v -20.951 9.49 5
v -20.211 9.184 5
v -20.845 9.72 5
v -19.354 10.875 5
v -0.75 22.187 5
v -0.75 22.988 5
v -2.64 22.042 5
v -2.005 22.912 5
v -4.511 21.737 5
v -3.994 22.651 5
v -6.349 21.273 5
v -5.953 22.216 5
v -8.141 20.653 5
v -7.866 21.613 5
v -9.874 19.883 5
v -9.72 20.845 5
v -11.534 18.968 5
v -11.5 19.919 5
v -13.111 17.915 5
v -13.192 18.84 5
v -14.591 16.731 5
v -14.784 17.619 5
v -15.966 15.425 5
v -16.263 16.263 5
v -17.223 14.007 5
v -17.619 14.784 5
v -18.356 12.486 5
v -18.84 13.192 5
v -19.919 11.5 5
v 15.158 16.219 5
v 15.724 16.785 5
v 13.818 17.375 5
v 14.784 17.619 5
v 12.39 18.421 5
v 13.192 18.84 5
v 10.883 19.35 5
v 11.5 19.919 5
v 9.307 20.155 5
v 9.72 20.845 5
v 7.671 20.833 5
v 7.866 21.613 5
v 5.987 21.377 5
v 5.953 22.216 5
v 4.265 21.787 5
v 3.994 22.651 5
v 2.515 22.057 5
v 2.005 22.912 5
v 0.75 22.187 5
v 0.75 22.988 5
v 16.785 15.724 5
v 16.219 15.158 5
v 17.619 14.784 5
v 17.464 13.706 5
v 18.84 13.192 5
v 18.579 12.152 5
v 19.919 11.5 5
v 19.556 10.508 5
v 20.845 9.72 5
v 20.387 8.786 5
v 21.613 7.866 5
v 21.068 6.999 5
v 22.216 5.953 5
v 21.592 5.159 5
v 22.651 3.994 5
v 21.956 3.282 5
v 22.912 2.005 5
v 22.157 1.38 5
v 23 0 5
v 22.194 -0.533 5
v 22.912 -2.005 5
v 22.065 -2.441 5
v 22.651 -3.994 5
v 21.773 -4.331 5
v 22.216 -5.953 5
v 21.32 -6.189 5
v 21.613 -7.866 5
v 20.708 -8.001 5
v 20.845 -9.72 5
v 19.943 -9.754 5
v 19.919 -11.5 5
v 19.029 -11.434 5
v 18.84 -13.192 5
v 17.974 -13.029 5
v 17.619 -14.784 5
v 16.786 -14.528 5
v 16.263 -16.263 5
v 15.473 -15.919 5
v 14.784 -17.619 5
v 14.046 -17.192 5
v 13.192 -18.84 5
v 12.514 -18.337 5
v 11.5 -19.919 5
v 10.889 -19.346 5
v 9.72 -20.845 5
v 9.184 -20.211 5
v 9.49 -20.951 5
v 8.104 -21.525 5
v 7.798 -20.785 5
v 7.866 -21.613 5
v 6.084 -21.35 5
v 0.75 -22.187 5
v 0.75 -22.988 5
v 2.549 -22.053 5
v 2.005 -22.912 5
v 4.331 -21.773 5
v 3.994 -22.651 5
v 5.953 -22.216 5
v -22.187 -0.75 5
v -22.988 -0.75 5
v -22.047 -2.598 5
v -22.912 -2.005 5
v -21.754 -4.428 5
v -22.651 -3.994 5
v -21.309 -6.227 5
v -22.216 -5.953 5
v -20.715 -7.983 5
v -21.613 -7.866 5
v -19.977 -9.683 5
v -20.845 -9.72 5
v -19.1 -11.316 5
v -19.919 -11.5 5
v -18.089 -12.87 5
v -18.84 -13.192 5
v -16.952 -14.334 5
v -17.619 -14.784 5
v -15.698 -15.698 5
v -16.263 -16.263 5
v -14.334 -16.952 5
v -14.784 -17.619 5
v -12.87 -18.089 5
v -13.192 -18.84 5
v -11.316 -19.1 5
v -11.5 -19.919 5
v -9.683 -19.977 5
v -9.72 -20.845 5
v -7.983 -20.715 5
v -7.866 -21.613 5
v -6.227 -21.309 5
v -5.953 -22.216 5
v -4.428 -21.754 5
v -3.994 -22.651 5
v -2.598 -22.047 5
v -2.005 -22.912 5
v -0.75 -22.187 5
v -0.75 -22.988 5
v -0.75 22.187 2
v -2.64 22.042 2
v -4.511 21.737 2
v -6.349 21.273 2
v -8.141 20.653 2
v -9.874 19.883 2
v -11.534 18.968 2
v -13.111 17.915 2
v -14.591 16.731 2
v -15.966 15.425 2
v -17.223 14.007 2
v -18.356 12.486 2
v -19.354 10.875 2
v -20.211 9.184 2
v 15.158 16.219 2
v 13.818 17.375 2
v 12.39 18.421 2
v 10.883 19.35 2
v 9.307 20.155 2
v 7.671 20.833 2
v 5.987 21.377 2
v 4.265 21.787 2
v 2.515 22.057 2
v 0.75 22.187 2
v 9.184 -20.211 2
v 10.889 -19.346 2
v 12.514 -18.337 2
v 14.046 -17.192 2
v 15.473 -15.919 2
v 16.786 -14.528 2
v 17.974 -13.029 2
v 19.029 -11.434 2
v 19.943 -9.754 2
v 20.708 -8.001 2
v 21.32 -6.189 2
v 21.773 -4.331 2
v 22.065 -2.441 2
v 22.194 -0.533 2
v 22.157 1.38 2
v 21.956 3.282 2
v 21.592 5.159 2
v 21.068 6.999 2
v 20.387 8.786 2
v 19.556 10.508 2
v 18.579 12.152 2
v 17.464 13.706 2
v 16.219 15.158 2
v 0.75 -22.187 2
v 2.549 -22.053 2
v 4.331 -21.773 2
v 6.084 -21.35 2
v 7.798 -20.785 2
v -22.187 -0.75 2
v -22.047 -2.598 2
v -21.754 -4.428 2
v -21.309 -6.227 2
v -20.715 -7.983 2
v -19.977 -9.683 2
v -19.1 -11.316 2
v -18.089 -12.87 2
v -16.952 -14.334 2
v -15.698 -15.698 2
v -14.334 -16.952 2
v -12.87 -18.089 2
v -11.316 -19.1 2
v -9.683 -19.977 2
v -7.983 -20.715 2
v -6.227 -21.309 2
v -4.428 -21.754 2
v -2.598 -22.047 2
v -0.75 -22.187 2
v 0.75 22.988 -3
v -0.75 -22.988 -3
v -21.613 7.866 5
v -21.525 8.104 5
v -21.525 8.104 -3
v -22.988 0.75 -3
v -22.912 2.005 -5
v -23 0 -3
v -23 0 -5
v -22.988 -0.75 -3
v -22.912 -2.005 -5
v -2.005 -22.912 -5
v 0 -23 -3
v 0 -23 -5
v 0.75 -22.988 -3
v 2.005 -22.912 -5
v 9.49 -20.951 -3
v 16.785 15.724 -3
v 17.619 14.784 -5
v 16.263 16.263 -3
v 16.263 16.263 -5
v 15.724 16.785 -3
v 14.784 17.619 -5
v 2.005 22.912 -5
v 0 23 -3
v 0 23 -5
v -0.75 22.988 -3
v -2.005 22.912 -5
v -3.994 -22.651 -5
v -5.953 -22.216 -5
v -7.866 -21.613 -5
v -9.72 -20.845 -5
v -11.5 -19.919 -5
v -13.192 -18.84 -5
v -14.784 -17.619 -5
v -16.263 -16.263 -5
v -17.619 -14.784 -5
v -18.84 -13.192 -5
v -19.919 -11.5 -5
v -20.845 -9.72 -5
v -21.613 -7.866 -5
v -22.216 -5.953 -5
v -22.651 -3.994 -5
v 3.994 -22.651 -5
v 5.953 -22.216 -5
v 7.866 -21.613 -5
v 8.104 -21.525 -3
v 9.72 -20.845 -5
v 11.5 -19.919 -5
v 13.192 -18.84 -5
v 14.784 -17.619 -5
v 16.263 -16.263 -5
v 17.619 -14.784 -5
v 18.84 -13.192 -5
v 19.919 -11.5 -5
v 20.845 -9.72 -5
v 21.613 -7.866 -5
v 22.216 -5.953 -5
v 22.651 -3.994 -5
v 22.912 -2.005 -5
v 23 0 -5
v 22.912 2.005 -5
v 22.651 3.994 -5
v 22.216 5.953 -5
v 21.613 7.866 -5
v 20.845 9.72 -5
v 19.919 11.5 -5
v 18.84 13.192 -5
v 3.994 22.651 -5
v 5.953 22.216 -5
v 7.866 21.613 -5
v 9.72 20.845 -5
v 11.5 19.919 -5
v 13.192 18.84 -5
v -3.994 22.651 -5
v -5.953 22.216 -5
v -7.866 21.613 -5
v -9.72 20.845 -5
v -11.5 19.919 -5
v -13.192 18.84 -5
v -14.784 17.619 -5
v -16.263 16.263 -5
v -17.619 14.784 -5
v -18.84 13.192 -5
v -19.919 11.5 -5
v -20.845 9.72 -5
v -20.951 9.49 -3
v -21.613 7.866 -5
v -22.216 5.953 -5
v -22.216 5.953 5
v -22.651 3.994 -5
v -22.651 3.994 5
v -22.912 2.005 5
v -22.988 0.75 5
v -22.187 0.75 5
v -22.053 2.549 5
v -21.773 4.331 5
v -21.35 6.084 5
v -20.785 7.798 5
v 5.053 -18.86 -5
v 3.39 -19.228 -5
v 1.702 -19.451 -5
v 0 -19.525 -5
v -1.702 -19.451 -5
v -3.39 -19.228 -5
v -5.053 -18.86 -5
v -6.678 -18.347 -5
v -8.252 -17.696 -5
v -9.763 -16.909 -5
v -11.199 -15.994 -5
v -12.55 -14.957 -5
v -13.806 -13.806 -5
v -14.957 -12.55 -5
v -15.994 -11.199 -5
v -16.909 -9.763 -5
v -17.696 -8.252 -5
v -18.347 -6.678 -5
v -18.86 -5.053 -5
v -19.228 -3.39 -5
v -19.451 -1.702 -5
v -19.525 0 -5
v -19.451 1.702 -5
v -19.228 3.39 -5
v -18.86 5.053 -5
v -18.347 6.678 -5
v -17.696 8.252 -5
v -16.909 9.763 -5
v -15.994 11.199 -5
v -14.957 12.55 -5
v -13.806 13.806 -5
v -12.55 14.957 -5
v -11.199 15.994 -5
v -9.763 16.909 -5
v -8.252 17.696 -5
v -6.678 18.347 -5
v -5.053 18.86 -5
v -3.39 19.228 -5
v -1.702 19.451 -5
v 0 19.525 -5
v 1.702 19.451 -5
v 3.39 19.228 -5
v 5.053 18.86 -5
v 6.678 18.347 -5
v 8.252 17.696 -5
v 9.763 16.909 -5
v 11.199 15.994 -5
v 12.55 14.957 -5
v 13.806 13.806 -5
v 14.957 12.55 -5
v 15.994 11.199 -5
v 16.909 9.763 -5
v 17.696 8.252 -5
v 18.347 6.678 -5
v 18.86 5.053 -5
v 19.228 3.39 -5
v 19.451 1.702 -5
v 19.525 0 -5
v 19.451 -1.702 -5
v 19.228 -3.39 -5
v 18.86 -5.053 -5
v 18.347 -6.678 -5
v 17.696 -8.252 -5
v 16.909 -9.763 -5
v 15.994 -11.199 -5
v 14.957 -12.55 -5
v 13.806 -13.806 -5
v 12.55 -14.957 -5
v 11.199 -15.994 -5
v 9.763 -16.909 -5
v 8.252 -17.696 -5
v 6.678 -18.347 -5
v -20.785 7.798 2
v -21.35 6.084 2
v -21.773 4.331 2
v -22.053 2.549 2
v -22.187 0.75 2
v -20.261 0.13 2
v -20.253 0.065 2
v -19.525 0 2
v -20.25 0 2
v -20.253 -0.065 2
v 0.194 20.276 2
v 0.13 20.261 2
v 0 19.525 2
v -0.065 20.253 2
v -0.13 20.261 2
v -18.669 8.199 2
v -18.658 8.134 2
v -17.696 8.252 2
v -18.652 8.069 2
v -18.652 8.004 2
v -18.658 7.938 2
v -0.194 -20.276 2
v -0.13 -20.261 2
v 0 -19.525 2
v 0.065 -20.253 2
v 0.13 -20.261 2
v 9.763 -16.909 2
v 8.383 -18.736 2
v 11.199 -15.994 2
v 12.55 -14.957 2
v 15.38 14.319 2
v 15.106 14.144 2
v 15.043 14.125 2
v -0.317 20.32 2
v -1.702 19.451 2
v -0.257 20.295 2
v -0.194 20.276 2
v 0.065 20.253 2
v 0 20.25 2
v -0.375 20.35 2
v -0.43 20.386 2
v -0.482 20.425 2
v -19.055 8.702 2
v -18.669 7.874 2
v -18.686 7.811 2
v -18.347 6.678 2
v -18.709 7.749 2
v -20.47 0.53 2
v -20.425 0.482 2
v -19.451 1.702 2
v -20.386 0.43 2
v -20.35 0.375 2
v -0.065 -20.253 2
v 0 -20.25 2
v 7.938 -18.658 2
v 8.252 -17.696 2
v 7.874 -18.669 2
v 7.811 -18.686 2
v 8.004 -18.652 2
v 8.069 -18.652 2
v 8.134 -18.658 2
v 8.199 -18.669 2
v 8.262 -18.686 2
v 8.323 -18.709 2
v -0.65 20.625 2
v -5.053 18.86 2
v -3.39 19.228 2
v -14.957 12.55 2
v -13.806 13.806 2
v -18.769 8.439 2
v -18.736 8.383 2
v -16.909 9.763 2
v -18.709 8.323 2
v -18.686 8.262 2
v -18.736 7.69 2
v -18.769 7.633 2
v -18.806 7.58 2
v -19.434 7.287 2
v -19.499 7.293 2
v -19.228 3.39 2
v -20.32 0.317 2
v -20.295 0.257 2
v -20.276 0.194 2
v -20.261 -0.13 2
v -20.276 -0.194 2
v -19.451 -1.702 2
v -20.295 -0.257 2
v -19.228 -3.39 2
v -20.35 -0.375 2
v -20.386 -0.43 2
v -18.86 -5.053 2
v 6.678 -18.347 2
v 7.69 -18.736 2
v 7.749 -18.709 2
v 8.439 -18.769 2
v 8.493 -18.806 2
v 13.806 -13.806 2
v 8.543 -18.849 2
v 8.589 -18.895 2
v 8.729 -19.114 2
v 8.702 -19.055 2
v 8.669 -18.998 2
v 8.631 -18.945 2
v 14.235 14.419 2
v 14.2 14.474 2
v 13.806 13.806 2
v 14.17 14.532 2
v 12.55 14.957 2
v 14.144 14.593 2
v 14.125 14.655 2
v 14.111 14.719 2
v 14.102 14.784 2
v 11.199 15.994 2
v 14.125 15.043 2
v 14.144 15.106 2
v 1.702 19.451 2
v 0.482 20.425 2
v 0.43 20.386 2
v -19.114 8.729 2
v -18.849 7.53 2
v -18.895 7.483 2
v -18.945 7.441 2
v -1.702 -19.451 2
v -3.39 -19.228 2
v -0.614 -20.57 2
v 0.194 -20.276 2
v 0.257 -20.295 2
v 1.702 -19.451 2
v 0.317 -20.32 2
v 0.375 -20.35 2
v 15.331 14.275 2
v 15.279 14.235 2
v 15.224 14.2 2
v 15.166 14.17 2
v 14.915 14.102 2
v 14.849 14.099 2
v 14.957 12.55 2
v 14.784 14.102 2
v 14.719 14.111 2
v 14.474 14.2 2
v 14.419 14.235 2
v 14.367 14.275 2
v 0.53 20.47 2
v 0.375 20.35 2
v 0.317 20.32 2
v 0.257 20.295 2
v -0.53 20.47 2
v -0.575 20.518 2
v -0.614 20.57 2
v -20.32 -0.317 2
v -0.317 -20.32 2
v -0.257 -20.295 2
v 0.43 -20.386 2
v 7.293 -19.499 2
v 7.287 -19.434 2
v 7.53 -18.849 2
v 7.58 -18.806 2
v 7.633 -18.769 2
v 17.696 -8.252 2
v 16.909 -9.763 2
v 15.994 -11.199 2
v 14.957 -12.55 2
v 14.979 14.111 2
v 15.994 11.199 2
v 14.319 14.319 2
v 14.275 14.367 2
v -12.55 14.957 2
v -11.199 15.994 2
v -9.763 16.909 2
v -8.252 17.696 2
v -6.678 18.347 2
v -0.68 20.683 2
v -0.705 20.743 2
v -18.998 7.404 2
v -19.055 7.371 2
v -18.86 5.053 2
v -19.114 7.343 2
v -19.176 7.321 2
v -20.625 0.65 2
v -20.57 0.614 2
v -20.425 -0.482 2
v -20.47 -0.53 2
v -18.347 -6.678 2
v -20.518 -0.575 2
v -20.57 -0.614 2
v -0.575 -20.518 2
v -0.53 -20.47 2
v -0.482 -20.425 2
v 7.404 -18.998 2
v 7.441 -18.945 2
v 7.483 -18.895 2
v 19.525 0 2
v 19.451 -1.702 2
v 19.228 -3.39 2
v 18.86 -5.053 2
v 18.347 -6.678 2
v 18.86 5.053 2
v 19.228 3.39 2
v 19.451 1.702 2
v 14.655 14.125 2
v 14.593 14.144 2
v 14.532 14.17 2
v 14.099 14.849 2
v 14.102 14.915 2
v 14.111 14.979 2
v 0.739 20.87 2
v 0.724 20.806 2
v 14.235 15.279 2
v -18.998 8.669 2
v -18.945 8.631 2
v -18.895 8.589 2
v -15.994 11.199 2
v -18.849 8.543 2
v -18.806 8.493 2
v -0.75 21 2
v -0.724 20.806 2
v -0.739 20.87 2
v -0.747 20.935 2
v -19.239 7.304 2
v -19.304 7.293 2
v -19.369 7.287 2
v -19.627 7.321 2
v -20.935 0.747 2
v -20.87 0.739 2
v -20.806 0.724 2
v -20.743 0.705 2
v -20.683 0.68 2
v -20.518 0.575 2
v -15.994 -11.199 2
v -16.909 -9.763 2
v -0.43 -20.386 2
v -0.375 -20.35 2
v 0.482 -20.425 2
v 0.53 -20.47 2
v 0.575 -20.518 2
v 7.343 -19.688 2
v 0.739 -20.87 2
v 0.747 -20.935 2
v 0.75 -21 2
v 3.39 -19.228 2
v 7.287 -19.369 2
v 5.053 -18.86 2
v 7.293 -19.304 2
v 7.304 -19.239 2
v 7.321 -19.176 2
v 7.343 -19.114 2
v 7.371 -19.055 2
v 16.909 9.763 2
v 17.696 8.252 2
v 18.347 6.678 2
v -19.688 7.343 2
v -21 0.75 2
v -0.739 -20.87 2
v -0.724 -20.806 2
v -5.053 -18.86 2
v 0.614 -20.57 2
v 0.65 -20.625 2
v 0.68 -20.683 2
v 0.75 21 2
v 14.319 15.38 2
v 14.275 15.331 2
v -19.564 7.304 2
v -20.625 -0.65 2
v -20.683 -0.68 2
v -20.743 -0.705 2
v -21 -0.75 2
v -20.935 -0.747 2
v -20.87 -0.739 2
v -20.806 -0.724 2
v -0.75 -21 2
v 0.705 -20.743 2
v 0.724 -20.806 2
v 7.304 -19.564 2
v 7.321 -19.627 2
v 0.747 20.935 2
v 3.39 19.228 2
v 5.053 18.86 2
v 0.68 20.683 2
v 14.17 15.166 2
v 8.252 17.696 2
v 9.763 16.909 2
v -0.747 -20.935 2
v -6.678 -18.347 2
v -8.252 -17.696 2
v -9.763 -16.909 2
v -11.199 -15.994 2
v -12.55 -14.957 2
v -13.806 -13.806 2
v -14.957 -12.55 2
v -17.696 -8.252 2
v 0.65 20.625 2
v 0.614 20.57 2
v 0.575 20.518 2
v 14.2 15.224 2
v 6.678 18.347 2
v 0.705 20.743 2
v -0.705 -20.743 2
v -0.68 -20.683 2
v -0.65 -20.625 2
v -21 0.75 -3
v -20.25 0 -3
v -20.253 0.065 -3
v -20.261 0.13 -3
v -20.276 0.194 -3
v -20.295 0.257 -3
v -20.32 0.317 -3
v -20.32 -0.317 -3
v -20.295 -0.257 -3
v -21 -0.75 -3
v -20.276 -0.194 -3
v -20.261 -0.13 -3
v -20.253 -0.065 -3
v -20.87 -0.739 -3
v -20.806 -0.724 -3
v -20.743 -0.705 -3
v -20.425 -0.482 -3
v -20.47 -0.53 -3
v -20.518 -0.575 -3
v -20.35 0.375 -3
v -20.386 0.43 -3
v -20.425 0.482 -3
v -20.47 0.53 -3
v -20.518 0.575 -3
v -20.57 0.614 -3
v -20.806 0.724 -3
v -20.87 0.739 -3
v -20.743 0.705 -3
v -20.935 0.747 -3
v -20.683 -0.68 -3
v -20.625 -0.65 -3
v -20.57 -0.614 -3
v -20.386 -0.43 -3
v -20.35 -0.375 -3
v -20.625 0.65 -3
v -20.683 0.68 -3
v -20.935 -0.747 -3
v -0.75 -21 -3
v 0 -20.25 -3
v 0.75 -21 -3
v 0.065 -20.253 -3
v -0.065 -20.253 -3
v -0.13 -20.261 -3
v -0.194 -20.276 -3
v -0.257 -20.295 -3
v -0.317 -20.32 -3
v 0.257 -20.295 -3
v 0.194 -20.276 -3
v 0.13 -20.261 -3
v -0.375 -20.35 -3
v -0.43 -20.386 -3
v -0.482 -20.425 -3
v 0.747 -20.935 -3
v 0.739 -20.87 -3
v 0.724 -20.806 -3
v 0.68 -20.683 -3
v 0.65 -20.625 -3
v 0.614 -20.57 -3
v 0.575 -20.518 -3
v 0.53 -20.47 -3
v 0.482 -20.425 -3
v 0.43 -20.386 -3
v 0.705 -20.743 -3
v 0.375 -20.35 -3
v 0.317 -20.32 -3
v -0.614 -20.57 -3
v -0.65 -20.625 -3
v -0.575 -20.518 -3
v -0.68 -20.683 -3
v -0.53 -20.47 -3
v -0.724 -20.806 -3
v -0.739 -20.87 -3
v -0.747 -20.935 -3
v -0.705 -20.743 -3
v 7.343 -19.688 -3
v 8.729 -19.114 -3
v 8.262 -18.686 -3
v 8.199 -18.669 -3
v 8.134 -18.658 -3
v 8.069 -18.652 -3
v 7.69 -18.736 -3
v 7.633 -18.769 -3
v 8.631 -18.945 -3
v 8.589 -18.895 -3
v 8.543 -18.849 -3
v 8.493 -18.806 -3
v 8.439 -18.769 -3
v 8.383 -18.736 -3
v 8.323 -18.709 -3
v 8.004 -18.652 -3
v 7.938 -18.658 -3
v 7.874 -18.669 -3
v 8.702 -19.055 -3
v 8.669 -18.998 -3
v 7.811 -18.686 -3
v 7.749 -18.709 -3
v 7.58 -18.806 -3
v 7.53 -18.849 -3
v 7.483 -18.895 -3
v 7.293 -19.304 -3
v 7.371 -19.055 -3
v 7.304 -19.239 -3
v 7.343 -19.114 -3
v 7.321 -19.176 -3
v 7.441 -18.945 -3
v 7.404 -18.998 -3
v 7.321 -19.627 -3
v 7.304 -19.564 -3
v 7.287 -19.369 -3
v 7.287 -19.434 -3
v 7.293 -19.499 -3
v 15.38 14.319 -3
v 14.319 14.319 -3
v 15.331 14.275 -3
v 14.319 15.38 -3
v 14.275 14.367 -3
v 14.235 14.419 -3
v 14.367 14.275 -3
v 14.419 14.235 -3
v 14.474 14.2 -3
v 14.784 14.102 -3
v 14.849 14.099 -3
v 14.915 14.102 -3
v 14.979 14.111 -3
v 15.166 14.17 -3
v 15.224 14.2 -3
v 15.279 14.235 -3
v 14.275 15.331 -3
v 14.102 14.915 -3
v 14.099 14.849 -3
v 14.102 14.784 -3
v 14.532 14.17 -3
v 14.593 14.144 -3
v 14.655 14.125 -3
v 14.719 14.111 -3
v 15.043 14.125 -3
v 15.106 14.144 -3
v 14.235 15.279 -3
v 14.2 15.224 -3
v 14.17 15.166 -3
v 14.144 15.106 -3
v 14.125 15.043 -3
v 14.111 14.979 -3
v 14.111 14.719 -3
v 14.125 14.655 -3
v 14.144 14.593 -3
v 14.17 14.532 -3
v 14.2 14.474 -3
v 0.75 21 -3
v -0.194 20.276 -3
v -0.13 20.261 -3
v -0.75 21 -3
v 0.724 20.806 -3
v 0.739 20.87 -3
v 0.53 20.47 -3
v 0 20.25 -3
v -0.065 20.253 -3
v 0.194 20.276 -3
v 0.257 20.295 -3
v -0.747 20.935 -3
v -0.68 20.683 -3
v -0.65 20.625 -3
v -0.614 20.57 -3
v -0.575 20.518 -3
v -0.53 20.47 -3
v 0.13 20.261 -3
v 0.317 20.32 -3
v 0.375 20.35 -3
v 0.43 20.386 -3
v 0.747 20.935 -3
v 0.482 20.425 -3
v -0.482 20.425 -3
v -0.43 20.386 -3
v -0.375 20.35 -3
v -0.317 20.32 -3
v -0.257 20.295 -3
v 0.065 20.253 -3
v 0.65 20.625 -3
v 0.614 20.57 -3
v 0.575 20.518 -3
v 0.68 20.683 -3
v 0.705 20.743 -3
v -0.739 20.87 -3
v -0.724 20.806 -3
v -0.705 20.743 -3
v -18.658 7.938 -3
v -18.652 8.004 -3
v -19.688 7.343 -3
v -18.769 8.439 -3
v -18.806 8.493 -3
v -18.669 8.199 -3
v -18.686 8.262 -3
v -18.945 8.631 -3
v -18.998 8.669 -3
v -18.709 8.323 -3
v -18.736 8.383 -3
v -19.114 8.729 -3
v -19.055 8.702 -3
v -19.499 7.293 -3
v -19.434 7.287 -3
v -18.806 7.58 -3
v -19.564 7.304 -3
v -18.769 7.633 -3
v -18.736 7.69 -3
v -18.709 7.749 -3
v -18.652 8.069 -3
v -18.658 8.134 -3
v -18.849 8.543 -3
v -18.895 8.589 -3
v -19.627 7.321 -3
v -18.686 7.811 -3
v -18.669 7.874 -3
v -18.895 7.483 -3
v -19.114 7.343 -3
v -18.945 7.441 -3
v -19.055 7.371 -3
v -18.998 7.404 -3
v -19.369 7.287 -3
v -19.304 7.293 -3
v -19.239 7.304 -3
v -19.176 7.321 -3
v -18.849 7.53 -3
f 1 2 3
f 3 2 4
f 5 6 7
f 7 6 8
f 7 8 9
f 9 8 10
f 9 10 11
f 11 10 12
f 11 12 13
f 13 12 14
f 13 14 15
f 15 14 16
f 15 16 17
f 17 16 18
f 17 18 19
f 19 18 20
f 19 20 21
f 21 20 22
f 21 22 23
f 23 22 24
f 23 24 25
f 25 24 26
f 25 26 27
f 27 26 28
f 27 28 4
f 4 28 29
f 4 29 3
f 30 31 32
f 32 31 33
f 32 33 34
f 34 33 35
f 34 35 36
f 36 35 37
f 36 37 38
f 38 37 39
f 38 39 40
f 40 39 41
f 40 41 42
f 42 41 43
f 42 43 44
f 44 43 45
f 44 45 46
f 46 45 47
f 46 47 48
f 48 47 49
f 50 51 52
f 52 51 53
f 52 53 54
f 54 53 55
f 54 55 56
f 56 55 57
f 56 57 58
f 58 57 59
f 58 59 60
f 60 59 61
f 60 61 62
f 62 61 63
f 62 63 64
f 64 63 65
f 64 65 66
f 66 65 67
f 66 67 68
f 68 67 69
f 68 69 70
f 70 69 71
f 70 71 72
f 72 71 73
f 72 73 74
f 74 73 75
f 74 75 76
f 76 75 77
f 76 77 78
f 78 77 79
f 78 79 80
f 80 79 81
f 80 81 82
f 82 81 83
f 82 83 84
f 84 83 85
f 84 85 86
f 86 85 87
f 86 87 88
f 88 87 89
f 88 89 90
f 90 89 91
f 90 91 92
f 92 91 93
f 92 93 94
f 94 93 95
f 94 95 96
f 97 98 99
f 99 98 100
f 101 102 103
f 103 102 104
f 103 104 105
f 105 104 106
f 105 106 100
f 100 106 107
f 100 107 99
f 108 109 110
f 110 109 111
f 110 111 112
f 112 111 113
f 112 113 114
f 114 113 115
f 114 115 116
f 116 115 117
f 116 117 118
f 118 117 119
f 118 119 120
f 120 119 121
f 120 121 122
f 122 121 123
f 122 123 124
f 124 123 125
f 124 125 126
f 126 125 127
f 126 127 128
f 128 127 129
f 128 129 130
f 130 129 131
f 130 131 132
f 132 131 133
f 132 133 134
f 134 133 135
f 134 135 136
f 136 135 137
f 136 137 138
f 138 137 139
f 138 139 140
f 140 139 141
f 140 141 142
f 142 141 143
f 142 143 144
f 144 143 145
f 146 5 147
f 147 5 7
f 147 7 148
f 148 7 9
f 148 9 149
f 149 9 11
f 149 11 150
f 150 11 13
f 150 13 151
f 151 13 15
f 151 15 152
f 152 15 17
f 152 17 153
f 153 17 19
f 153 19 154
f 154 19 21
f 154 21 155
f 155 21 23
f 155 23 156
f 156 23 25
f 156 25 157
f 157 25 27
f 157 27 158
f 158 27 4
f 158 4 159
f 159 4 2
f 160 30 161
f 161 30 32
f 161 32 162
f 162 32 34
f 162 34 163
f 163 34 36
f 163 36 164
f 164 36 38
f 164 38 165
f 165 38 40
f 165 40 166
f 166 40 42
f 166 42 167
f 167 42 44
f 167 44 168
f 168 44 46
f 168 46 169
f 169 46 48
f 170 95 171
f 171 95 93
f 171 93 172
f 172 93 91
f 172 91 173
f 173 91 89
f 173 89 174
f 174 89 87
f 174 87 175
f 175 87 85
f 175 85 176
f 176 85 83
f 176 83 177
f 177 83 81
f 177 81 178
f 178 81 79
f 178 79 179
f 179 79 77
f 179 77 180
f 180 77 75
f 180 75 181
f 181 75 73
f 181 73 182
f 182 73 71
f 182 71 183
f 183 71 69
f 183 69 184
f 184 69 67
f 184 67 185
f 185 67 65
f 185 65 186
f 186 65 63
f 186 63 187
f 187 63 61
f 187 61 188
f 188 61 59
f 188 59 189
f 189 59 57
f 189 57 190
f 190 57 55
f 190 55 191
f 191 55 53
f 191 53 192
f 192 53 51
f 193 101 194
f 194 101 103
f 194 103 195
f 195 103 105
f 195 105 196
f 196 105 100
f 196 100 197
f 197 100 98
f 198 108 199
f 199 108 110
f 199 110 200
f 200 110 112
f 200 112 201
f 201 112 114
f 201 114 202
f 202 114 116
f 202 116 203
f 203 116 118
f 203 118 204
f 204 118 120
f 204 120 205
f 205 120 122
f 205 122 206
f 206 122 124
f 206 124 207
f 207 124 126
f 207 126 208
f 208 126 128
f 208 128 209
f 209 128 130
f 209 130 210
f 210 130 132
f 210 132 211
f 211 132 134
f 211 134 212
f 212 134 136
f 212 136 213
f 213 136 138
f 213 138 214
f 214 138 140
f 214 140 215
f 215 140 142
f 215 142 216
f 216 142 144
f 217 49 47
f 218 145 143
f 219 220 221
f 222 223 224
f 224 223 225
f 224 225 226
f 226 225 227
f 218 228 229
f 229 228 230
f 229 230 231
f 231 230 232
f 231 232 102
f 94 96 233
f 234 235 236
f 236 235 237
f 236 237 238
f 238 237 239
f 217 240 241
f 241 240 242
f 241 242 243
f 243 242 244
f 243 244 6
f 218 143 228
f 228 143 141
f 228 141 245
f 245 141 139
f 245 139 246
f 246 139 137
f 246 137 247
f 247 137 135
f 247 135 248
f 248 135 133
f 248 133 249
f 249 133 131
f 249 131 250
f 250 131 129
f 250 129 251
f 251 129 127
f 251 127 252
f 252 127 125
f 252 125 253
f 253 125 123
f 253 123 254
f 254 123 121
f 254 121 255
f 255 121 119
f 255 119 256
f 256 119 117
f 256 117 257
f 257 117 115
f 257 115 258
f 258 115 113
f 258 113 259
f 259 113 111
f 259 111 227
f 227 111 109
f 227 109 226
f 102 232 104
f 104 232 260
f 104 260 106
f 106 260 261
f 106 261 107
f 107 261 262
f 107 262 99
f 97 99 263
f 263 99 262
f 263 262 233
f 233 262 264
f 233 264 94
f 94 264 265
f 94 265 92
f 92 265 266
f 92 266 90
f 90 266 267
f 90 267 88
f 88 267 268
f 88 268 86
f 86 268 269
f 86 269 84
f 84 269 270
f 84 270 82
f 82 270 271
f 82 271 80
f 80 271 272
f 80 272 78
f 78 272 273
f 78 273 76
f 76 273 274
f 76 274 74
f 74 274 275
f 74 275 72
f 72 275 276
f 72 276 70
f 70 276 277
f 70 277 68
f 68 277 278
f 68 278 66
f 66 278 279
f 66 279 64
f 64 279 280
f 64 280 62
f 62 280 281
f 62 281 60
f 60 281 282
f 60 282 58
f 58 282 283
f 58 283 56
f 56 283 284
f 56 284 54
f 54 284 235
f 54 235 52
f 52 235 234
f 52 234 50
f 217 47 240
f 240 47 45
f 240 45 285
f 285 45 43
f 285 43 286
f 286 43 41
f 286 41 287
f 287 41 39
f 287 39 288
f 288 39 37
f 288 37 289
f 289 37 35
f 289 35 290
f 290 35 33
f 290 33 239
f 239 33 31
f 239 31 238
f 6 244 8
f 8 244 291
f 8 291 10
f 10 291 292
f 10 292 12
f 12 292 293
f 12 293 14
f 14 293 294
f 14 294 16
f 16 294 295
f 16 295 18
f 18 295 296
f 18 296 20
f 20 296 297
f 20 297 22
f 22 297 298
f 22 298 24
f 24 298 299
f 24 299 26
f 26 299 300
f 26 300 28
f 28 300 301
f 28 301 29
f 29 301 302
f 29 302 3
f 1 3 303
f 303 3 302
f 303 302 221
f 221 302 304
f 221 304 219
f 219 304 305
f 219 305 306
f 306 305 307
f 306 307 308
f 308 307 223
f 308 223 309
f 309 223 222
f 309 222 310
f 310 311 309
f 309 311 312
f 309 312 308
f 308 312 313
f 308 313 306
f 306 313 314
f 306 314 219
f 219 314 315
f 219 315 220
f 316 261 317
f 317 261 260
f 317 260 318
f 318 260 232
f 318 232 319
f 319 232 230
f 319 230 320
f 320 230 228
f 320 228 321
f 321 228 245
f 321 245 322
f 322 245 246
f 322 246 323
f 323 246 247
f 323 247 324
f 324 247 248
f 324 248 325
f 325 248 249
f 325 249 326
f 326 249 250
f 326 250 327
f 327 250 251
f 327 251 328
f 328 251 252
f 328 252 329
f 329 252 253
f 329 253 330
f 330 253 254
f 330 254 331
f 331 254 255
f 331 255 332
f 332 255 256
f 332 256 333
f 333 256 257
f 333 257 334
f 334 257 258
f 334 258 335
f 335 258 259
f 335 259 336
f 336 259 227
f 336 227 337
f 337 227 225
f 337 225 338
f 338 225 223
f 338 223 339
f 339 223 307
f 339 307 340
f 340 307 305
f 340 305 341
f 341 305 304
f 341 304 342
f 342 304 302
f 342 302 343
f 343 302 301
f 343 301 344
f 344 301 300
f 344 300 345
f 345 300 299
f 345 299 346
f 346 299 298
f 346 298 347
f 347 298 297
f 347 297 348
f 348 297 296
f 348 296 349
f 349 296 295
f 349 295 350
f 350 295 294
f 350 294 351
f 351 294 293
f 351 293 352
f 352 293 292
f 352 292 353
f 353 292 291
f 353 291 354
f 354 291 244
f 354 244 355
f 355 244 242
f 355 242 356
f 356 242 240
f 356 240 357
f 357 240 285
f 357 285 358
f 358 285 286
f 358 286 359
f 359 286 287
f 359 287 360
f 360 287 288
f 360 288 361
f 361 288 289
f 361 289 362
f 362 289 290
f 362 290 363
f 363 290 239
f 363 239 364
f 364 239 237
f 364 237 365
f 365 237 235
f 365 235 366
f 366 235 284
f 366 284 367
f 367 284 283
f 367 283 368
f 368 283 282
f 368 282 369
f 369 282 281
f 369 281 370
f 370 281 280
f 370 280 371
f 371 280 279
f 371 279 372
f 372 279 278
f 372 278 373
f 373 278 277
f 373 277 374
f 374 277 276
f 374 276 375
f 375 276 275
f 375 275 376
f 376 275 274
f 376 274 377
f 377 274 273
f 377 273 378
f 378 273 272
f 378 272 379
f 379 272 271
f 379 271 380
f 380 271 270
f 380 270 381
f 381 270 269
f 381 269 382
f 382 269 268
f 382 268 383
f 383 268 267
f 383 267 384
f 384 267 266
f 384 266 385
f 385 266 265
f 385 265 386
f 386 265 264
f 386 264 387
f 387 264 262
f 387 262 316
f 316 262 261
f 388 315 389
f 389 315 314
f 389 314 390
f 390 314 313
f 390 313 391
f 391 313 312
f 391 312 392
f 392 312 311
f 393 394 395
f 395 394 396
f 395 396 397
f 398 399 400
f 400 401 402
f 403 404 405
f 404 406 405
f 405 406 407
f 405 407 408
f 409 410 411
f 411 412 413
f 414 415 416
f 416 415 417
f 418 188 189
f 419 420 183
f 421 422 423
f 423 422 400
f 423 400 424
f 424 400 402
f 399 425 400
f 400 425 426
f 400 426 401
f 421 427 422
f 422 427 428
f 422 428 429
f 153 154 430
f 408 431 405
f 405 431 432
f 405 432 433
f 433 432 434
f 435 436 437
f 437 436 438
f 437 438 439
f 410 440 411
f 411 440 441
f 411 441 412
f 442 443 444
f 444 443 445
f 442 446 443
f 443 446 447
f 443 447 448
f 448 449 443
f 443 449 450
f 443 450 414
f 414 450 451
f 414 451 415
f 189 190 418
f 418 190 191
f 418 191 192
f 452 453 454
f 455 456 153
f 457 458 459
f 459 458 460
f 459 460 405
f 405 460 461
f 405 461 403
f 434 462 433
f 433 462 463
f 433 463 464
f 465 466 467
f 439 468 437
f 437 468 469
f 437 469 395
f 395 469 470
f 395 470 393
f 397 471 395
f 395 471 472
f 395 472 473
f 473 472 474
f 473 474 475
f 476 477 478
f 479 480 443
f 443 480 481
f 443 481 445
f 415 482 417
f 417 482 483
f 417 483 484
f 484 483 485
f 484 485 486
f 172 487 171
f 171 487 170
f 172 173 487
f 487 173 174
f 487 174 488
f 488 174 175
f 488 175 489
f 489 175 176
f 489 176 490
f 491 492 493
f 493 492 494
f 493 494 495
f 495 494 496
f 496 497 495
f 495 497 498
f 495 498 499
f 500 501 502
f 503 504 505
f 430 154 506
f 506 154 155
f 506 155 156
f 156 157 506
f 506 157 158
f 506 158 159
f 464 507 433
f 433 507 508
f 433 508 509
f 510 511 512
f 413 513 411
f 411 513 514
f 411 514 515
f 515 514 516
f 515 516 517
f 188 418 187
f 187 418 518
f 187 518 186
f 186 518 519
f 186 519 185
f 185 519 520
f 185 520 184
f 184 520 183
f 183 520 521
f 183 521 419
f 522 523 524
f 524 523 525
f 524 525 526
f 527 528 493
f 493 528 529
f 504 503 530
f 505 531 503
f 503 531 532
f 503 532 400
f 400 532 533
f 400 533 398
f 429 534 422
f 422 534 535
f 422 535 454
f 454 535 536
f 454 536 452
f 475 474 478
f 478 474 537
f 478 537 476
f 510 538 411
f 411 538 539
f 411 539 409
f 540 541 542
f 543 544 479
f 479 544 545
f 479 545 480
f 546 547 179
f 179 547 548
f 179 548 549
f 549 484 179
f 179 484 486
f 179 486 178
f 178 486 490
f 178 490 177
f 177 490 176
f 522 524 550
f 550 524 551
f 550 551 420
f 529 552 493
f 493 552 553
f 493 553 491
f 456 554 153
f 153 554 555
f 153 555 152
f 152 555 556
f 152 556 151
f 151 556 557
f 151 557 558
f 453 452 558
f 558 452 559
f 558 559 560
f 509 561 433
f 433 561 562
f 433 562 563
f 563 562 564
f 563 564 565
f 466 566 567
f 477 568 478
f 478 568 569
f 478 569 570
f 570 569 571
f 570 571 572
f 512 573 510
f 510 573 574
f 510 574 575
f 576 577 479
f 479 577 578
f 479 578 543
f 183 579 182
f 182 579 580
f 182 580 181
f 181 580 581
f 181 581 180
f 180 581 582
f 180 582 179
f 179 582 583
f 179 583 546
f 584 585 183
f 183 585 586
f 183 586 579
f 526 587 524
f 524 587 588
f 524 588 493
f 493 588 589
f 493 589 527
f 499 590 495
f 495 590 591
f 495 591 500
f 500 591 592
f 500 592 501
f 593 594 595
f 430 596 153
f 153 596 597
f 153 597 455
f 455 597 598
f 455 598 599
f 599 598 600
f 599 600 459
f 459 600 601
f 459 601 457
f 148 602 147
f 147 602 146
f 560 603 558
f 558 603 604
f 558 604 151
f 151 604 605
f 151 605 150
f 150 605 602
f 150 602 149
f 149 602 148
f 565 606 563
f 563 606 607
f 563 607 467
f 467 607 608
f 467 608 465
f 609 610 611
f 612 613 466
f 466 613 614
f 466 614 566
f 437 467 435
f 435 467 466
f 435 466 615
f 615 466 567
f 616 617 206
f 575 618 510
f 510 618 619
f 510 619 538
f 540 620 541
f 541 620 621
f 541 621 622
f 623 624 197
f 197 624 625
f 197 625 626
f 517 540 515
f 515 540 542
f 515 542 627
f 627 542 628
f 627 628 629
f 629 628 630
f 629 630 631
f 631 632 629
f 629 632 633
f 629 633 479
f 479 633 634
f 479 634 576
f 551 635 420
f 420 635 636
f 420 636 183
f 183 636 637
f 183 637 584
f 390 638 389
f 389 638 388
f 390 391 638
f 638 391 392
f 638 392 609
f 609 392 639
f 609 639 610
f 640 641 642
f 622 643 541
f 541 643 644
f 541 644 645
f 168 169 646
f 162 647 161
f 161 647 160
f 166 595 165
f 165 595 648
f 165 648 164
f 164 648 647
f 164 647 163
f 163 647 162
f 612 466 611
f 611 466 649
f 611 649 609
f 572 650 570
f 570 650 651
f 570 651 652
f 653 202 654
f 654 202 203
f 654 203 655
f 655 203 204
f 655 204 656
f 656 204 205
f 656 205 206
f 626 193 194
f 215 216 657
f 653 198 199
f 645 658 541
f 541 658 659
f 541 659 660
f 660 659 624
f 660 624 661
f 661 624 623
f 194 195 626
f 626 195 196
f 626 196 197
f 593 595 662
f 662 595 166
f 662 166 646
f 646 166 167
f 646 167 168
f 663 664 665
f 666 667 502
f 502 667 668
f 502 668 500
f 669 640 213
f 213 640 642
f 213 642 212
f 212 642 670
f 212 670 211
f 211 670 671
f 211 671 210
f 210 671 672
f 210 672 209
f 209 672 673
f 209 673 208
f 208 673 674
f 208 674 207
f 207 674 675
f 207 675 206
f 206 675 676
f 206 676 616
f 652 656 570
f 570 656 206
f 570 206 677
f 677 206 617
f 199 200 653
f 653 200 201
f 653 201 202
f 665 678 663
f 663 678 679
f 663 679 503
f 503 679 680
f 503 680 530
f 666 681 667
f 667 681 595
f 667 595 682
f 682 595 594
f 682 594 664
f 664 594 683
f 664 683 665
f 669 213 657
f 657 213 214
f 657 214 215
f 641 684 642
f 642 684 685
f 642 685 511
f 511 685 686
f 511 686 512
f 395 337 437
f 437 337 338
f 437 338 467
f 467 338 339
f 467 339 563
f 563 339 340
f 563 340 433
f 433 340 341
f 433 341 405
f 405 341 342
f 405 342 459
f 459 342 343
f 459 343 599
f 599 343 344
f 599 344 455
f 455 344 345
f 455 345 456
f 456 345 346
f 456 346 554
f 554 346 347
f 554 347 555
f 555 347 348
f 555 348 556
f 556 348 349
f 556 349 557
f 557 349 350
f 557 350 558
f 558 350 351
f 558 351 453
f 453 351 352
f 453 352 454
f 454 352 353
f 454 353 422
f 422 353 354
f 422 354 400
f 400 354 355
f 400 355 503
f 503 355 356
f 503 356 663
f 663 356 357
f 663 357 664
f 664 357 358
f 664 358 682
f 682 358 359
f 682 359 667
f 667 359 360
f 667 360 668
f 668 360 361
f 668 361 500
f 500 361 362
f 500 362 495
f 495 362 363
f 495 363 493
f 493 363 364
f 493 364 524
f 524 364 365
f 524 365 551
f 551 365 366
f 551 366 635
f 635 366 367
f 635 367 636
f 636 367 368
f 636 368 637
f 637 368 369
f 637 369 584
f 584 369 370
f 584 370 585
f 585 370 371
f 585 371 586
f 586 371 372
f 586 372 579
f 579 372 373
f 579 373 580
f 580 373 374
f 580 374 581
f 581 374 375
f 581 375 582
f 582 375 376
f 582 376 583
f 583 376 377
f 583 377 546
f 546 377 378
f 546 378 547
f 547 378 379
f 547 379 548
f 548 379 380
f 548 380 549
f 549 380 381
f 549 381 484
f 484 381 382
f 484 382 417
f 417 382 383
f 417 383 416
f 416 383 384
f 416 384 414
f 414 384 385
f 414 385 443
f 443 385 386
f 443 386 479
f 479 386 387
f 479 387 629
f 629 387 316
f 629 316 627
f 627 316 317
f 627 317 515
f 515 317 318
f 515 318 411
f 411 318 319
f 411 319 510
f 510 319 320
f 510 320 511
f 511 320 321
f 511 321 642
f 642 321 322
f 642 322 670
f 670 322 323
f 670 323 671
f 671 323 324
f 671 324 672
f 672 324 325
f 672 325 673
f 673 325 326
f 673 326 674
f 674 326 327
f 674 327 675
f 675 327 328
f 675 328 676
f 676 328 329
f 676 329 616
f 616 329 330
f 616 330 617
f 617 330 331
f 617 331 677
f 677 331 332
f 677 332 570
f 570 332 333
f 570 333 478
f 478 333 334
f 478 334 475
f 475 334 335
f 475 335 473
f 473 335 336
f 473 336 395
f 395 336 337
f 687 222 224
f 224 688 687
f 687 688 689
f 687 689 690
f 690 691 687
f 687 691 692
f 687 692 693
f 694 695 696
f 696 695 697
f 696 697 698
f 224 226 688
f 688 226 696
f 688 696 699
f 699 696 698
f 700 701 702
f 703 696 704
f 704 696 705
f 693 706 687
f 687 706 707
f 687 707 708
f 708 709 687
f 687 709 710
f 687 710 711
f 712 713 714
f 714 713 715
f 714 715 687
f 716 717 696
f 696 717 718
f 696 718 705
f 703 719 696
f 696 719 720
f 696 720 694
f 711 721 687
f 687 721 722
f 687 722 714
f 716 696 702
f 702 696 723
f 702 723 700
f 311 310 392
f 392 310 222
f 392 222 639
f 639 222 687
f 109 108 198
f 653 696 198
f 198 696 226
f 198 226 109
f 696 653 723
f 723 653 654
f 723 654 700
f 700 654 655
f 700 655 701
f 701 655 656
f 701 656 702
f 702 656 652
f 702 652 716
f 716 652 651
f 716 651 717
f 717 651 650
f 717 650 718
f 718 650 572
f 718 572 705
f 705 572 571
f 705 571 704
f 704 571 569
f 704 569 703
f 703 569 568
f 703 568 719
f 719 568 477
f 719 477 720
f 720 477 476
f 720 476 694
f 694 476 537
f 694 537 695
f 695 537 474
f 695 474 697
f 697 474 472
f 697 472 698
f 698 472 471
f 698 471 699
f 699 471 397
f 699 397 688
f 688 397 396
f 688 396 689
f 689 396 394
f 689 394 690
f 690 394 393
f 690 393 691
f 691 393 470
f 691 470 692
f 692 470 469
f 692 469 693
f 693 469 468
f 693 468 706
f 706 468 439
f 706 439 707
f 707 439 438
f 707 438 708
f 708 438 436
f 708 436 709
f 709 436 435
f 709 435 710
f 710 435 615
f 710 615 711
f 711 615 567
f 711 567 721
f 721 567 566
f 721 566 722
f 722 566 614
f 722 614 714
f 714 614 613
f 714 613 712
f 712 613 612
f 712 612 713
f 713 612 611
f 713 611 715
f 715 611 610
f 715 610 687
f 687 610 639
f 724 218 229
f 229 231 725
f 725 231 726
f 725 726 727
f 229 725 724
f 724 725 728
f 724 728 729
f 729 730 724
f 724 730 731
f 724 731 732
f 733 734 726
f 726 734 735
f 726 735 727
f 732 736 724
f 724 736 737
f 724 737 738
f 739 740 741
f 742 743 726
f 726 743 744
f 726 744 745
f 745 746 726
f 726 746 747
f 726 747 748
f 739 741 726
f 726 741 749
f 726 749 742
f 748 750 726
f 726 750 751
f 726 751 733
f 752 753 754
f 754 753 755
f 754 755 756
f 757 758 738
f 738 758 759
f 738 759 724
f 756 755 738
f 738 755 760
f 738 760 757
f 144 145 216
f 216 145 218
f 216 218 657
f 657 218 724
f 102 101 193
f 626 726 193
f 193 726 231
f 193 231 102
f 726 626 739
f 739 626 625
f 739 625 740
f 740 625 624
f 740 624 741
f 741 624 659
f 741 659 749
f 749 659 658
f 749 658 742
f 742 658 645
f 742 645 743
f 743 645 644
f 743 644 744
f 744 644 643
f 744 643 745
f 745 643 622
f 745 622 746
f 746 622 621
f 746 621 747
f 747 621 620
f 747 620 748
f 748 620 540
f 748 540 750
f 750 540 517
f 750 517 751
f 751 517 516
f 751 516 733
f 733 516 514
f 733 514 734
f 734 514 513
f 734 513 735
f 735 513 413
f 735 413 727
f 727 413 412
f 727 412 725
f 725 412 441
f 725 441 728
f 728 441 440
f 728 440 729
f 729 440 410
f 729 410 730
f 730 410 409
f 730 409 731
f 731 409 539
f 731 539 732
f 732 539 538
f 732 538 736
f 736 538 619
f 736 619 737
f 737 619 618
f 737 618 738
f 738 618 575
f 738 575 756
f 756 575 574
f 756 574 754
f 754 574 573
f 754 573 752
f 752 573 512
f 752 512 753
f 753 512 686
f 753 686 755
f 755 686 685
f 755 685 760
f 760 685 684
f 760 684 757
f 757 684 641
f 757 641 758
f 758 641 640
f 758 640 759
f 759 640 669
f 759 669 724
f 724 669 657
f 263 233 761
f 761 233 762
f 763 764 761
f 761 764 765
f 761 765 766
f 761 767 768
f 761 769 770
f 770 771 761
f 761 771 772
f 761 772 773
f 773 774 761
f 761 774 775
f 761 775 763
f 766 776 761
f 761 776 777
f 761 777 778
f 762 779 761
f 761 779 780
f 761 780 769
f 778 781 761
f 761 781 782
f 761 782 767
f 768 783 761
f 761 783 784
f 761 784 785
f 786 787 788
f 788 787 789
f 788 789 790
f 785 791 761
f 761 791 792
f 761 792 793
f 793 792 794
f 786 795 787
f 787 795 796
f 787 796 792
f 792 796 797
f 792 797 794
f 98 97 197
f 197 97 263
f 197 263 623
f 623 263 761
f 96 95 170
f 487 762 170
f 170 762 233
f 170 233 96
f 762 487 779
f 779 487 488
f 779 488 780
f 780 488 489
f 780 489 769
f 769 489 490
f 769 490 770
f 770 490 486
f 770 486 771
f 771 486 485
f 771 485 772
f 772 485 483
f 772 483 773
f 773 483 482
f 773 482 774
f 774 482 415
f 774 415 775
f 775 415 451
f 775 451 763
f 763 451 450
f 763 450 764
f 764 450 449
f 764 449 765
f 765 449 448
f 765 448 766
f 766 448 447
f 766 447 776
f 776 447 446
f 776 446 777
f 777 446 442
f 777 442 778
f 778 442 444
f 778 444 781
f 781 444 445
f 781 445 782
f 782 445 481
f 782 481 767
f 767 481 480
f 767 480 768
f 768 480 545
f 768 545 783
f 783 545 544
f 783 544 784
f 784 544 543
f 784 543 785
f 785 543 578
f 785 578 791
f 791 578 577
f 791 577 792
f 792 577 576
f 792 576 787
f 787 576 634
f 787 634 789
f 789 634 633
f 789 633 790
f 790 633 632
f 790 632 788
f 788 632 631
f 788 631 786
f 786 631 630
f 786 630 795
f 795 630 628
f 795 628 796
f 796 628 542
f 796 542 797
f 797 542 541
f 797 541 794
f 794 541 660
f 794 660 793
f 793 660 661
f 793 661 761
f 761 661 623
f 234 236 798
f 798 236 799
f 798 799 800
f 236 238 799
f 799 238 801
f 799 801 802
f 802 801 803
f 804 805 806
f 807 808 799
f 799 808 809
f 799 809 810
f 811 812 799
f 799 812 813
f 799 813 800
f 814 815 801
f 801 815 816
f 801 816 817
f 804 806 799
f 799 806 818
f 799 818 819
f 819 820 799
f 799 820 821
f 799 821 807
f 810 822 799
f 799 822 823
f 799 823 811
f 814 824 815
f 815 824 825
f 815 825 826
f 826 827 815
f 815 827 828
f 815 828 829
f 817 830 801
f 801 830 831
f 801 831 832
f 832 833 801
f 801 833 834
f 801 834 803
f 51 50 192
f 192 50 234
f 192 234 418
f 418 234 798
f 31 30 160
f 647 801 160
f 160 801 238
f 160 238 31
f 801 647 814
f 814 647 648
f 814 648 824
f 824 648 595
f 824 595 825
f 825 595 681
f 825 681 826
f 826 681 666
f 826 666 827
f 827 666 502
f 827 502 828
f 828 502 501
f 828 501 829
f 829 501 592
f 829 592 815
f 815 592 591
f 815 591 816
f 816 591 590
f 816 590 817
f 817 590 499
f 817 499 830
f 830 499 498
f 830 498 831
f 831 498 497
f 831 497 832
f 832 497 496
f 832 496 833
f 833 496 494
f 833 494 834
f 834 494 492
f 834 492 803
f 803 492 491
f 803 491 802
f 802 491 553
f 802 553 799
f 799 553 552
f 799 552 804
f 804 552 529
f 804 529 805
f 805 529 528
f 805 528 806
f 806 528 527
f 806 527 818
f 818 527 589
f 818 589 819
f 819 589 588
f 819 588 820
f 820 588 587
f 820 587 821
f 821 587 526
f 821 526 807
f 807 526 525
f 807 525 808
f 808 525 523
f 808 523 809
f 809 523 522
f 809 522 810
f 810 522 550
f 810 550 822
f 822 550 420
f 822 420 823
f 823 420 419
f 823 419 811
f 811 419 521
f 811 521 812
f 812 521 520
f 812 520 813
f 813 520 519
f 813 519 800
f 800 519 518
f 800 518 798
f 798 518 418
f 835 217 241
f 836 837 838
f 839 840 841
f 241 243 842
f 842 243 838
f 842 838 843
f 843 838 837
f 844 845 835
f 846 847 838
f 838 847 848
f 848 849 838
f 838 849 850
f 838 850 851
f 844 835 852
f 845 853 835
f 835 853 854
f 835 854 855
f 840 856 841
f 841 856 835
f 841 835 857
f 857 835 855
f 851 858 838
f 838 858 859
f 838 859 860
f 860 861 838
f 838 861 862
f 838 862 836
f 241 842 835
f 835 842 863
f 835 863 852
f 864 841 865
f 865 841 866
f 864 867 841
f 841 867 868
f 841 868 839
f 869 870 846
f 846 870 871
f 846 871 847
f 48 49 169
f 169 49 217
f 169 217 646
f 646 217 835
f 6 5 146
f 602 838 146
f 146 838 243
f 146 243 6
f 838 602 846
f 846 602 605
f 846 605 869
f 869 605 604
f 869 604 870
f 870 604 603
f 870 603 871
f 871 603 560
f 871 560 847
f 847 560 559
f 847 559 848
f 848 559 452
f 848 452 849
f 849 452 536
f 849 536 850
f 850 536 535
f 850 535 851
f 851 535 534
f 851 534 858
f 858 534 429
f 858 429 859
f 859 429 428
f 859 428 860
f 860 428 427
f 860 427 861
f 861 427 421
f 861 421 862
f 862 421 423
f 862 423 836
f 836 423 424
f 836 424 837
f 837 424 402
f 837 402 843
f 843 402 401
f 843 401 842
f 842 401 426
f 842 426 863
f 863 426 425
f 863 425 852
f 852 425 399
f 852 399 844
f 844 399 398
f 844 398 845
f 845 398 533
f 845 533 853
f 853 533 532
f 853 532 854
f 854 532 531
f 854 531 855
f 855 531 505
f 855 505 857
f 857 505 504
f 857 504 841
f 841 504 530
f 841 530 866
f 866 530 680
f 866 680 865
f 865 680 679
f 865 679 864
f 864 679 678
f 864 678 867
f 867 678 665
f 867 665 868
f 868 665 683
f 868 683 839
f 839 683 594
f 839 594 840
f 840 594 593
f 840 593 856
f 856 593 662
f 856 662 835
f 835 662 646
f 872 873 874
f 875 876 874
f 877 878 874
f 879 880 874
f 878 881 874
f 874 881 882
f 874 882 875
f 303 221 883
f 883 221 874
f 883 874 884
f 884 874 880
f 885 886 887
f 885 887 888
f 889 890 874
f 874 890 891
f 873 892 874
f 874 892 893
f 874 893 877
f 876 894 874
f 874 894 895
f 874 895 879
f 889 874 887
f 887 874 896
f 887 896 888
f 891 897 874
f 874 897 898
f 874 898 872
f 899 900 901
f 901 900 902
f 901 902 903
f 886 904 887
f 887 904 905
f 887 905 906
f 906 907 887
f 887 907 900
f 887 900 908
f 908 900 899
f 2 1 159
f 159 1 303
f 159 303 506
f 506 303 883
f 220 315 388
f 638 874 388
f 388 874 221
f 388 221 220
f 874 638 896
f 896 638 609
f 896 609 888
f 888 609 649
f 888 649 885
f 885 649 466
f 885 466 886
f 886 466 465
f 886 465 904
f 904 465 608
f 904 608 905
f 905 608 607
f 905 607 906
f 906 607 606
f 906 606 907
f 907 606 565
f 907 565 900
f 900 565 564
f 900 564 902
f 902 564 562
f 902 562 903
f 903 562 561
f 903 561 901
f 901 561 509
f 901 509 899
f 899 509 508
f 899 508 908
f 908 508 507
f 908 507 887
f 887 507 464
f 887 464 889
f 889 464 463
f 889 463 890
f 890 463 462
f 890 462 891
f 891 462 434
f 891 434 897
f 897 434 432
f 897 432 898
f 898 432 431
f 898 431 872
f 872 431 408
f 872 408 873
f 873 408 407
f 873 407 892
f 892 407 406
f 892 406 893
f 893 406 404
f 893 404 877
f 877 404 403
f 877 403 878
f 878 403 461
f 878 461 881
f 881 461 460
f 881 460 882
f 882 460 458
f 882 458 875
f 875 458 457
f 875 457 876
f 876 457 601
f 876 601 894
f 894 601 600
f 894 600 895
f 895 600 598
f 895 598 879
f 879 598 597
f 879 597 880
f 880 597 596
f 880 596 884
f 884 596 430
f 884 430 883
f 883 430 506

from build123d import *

# Parameters (mm, degrees)
SKETCH1_R           = 23
BOSS_EXTRUDE1_DEPTH = 5
SKETCH2_R           = 22.2
CUT_EXTRUDE1_DEPTH  = 3
SKETCH3_R           = 19.525
CUT_EXTRUDE2_DEPTH  = 7
CUT_EXTRUDE4_DEPTH  = 8
CIRPATTERN1_COUNT   = 16


with BuildPart() as part:
    # Sketch1 → Boss-Extrude1 (new body, symmetric)
    with BuildSketch(Plane.XY):
        Circle(SKETCH1_R)
    extrude(amount=BOSS_EXTRUDE1_DEPTH, both=True)

    # Sketch2 → Cut-Extrude1 (cut)
    with BuildSketch(Plane.XY.offset(5)):
        Circle(SKETCH2_R)
    extrude(amount=-CUT_EXTRUDE1_DEPTH, mode=Mode.SUBTRACT)

    # Sketch3 → Cut-Extrude2 (cut)
    with BuildSketch(Plane(origin=(0, 0, -5), x_dir=(-1, 0, 0), z_dir=(0, 0, -1))):
        Circle(SKETCH3_R)
    extrude(amount=-CUT_EXTRUDE2_DEPTH, mode=Mode.SUBTRACT)

    # Sketch5 → Cut-Extrude4 (cut)
    with BuildSketch(Plane.XY.offset(5)):
        with BuildLine():
            Line((-23, 0.75), (-21, 0.75))
            ThreePointArc((-21, 0.75), (-20.25, 0), (-21, -0.75))
            Line((-21, -0.75), (-23, -0.75))
            ThreePointArc((-23, -0.75), (-23.75, 0), (-23, 0.75))
        make_face()
    cut_extrude4 = extrude(amount=-CUT_EXTRUDE4_DEPTH, mode=Mode.SUBTRACT)

    # CirPattern1: Cut-Extrude4 ×16 about axis, 10 skipped
    cirpattern1_axis = Axis((0, 0, 5), (0, 0, 1))
    add([cut_extrude4.rotate(cirpattern1_axis, i * 360 / CIRPATTERN1_COUNT) for i in range(1, CIRPATTERN1_COUNT) if i not in (1, 2, 3, 6, 7, 8, 9, 11, 13, 14)], mode=Mode.SUBTRACT)


solid = part.part
